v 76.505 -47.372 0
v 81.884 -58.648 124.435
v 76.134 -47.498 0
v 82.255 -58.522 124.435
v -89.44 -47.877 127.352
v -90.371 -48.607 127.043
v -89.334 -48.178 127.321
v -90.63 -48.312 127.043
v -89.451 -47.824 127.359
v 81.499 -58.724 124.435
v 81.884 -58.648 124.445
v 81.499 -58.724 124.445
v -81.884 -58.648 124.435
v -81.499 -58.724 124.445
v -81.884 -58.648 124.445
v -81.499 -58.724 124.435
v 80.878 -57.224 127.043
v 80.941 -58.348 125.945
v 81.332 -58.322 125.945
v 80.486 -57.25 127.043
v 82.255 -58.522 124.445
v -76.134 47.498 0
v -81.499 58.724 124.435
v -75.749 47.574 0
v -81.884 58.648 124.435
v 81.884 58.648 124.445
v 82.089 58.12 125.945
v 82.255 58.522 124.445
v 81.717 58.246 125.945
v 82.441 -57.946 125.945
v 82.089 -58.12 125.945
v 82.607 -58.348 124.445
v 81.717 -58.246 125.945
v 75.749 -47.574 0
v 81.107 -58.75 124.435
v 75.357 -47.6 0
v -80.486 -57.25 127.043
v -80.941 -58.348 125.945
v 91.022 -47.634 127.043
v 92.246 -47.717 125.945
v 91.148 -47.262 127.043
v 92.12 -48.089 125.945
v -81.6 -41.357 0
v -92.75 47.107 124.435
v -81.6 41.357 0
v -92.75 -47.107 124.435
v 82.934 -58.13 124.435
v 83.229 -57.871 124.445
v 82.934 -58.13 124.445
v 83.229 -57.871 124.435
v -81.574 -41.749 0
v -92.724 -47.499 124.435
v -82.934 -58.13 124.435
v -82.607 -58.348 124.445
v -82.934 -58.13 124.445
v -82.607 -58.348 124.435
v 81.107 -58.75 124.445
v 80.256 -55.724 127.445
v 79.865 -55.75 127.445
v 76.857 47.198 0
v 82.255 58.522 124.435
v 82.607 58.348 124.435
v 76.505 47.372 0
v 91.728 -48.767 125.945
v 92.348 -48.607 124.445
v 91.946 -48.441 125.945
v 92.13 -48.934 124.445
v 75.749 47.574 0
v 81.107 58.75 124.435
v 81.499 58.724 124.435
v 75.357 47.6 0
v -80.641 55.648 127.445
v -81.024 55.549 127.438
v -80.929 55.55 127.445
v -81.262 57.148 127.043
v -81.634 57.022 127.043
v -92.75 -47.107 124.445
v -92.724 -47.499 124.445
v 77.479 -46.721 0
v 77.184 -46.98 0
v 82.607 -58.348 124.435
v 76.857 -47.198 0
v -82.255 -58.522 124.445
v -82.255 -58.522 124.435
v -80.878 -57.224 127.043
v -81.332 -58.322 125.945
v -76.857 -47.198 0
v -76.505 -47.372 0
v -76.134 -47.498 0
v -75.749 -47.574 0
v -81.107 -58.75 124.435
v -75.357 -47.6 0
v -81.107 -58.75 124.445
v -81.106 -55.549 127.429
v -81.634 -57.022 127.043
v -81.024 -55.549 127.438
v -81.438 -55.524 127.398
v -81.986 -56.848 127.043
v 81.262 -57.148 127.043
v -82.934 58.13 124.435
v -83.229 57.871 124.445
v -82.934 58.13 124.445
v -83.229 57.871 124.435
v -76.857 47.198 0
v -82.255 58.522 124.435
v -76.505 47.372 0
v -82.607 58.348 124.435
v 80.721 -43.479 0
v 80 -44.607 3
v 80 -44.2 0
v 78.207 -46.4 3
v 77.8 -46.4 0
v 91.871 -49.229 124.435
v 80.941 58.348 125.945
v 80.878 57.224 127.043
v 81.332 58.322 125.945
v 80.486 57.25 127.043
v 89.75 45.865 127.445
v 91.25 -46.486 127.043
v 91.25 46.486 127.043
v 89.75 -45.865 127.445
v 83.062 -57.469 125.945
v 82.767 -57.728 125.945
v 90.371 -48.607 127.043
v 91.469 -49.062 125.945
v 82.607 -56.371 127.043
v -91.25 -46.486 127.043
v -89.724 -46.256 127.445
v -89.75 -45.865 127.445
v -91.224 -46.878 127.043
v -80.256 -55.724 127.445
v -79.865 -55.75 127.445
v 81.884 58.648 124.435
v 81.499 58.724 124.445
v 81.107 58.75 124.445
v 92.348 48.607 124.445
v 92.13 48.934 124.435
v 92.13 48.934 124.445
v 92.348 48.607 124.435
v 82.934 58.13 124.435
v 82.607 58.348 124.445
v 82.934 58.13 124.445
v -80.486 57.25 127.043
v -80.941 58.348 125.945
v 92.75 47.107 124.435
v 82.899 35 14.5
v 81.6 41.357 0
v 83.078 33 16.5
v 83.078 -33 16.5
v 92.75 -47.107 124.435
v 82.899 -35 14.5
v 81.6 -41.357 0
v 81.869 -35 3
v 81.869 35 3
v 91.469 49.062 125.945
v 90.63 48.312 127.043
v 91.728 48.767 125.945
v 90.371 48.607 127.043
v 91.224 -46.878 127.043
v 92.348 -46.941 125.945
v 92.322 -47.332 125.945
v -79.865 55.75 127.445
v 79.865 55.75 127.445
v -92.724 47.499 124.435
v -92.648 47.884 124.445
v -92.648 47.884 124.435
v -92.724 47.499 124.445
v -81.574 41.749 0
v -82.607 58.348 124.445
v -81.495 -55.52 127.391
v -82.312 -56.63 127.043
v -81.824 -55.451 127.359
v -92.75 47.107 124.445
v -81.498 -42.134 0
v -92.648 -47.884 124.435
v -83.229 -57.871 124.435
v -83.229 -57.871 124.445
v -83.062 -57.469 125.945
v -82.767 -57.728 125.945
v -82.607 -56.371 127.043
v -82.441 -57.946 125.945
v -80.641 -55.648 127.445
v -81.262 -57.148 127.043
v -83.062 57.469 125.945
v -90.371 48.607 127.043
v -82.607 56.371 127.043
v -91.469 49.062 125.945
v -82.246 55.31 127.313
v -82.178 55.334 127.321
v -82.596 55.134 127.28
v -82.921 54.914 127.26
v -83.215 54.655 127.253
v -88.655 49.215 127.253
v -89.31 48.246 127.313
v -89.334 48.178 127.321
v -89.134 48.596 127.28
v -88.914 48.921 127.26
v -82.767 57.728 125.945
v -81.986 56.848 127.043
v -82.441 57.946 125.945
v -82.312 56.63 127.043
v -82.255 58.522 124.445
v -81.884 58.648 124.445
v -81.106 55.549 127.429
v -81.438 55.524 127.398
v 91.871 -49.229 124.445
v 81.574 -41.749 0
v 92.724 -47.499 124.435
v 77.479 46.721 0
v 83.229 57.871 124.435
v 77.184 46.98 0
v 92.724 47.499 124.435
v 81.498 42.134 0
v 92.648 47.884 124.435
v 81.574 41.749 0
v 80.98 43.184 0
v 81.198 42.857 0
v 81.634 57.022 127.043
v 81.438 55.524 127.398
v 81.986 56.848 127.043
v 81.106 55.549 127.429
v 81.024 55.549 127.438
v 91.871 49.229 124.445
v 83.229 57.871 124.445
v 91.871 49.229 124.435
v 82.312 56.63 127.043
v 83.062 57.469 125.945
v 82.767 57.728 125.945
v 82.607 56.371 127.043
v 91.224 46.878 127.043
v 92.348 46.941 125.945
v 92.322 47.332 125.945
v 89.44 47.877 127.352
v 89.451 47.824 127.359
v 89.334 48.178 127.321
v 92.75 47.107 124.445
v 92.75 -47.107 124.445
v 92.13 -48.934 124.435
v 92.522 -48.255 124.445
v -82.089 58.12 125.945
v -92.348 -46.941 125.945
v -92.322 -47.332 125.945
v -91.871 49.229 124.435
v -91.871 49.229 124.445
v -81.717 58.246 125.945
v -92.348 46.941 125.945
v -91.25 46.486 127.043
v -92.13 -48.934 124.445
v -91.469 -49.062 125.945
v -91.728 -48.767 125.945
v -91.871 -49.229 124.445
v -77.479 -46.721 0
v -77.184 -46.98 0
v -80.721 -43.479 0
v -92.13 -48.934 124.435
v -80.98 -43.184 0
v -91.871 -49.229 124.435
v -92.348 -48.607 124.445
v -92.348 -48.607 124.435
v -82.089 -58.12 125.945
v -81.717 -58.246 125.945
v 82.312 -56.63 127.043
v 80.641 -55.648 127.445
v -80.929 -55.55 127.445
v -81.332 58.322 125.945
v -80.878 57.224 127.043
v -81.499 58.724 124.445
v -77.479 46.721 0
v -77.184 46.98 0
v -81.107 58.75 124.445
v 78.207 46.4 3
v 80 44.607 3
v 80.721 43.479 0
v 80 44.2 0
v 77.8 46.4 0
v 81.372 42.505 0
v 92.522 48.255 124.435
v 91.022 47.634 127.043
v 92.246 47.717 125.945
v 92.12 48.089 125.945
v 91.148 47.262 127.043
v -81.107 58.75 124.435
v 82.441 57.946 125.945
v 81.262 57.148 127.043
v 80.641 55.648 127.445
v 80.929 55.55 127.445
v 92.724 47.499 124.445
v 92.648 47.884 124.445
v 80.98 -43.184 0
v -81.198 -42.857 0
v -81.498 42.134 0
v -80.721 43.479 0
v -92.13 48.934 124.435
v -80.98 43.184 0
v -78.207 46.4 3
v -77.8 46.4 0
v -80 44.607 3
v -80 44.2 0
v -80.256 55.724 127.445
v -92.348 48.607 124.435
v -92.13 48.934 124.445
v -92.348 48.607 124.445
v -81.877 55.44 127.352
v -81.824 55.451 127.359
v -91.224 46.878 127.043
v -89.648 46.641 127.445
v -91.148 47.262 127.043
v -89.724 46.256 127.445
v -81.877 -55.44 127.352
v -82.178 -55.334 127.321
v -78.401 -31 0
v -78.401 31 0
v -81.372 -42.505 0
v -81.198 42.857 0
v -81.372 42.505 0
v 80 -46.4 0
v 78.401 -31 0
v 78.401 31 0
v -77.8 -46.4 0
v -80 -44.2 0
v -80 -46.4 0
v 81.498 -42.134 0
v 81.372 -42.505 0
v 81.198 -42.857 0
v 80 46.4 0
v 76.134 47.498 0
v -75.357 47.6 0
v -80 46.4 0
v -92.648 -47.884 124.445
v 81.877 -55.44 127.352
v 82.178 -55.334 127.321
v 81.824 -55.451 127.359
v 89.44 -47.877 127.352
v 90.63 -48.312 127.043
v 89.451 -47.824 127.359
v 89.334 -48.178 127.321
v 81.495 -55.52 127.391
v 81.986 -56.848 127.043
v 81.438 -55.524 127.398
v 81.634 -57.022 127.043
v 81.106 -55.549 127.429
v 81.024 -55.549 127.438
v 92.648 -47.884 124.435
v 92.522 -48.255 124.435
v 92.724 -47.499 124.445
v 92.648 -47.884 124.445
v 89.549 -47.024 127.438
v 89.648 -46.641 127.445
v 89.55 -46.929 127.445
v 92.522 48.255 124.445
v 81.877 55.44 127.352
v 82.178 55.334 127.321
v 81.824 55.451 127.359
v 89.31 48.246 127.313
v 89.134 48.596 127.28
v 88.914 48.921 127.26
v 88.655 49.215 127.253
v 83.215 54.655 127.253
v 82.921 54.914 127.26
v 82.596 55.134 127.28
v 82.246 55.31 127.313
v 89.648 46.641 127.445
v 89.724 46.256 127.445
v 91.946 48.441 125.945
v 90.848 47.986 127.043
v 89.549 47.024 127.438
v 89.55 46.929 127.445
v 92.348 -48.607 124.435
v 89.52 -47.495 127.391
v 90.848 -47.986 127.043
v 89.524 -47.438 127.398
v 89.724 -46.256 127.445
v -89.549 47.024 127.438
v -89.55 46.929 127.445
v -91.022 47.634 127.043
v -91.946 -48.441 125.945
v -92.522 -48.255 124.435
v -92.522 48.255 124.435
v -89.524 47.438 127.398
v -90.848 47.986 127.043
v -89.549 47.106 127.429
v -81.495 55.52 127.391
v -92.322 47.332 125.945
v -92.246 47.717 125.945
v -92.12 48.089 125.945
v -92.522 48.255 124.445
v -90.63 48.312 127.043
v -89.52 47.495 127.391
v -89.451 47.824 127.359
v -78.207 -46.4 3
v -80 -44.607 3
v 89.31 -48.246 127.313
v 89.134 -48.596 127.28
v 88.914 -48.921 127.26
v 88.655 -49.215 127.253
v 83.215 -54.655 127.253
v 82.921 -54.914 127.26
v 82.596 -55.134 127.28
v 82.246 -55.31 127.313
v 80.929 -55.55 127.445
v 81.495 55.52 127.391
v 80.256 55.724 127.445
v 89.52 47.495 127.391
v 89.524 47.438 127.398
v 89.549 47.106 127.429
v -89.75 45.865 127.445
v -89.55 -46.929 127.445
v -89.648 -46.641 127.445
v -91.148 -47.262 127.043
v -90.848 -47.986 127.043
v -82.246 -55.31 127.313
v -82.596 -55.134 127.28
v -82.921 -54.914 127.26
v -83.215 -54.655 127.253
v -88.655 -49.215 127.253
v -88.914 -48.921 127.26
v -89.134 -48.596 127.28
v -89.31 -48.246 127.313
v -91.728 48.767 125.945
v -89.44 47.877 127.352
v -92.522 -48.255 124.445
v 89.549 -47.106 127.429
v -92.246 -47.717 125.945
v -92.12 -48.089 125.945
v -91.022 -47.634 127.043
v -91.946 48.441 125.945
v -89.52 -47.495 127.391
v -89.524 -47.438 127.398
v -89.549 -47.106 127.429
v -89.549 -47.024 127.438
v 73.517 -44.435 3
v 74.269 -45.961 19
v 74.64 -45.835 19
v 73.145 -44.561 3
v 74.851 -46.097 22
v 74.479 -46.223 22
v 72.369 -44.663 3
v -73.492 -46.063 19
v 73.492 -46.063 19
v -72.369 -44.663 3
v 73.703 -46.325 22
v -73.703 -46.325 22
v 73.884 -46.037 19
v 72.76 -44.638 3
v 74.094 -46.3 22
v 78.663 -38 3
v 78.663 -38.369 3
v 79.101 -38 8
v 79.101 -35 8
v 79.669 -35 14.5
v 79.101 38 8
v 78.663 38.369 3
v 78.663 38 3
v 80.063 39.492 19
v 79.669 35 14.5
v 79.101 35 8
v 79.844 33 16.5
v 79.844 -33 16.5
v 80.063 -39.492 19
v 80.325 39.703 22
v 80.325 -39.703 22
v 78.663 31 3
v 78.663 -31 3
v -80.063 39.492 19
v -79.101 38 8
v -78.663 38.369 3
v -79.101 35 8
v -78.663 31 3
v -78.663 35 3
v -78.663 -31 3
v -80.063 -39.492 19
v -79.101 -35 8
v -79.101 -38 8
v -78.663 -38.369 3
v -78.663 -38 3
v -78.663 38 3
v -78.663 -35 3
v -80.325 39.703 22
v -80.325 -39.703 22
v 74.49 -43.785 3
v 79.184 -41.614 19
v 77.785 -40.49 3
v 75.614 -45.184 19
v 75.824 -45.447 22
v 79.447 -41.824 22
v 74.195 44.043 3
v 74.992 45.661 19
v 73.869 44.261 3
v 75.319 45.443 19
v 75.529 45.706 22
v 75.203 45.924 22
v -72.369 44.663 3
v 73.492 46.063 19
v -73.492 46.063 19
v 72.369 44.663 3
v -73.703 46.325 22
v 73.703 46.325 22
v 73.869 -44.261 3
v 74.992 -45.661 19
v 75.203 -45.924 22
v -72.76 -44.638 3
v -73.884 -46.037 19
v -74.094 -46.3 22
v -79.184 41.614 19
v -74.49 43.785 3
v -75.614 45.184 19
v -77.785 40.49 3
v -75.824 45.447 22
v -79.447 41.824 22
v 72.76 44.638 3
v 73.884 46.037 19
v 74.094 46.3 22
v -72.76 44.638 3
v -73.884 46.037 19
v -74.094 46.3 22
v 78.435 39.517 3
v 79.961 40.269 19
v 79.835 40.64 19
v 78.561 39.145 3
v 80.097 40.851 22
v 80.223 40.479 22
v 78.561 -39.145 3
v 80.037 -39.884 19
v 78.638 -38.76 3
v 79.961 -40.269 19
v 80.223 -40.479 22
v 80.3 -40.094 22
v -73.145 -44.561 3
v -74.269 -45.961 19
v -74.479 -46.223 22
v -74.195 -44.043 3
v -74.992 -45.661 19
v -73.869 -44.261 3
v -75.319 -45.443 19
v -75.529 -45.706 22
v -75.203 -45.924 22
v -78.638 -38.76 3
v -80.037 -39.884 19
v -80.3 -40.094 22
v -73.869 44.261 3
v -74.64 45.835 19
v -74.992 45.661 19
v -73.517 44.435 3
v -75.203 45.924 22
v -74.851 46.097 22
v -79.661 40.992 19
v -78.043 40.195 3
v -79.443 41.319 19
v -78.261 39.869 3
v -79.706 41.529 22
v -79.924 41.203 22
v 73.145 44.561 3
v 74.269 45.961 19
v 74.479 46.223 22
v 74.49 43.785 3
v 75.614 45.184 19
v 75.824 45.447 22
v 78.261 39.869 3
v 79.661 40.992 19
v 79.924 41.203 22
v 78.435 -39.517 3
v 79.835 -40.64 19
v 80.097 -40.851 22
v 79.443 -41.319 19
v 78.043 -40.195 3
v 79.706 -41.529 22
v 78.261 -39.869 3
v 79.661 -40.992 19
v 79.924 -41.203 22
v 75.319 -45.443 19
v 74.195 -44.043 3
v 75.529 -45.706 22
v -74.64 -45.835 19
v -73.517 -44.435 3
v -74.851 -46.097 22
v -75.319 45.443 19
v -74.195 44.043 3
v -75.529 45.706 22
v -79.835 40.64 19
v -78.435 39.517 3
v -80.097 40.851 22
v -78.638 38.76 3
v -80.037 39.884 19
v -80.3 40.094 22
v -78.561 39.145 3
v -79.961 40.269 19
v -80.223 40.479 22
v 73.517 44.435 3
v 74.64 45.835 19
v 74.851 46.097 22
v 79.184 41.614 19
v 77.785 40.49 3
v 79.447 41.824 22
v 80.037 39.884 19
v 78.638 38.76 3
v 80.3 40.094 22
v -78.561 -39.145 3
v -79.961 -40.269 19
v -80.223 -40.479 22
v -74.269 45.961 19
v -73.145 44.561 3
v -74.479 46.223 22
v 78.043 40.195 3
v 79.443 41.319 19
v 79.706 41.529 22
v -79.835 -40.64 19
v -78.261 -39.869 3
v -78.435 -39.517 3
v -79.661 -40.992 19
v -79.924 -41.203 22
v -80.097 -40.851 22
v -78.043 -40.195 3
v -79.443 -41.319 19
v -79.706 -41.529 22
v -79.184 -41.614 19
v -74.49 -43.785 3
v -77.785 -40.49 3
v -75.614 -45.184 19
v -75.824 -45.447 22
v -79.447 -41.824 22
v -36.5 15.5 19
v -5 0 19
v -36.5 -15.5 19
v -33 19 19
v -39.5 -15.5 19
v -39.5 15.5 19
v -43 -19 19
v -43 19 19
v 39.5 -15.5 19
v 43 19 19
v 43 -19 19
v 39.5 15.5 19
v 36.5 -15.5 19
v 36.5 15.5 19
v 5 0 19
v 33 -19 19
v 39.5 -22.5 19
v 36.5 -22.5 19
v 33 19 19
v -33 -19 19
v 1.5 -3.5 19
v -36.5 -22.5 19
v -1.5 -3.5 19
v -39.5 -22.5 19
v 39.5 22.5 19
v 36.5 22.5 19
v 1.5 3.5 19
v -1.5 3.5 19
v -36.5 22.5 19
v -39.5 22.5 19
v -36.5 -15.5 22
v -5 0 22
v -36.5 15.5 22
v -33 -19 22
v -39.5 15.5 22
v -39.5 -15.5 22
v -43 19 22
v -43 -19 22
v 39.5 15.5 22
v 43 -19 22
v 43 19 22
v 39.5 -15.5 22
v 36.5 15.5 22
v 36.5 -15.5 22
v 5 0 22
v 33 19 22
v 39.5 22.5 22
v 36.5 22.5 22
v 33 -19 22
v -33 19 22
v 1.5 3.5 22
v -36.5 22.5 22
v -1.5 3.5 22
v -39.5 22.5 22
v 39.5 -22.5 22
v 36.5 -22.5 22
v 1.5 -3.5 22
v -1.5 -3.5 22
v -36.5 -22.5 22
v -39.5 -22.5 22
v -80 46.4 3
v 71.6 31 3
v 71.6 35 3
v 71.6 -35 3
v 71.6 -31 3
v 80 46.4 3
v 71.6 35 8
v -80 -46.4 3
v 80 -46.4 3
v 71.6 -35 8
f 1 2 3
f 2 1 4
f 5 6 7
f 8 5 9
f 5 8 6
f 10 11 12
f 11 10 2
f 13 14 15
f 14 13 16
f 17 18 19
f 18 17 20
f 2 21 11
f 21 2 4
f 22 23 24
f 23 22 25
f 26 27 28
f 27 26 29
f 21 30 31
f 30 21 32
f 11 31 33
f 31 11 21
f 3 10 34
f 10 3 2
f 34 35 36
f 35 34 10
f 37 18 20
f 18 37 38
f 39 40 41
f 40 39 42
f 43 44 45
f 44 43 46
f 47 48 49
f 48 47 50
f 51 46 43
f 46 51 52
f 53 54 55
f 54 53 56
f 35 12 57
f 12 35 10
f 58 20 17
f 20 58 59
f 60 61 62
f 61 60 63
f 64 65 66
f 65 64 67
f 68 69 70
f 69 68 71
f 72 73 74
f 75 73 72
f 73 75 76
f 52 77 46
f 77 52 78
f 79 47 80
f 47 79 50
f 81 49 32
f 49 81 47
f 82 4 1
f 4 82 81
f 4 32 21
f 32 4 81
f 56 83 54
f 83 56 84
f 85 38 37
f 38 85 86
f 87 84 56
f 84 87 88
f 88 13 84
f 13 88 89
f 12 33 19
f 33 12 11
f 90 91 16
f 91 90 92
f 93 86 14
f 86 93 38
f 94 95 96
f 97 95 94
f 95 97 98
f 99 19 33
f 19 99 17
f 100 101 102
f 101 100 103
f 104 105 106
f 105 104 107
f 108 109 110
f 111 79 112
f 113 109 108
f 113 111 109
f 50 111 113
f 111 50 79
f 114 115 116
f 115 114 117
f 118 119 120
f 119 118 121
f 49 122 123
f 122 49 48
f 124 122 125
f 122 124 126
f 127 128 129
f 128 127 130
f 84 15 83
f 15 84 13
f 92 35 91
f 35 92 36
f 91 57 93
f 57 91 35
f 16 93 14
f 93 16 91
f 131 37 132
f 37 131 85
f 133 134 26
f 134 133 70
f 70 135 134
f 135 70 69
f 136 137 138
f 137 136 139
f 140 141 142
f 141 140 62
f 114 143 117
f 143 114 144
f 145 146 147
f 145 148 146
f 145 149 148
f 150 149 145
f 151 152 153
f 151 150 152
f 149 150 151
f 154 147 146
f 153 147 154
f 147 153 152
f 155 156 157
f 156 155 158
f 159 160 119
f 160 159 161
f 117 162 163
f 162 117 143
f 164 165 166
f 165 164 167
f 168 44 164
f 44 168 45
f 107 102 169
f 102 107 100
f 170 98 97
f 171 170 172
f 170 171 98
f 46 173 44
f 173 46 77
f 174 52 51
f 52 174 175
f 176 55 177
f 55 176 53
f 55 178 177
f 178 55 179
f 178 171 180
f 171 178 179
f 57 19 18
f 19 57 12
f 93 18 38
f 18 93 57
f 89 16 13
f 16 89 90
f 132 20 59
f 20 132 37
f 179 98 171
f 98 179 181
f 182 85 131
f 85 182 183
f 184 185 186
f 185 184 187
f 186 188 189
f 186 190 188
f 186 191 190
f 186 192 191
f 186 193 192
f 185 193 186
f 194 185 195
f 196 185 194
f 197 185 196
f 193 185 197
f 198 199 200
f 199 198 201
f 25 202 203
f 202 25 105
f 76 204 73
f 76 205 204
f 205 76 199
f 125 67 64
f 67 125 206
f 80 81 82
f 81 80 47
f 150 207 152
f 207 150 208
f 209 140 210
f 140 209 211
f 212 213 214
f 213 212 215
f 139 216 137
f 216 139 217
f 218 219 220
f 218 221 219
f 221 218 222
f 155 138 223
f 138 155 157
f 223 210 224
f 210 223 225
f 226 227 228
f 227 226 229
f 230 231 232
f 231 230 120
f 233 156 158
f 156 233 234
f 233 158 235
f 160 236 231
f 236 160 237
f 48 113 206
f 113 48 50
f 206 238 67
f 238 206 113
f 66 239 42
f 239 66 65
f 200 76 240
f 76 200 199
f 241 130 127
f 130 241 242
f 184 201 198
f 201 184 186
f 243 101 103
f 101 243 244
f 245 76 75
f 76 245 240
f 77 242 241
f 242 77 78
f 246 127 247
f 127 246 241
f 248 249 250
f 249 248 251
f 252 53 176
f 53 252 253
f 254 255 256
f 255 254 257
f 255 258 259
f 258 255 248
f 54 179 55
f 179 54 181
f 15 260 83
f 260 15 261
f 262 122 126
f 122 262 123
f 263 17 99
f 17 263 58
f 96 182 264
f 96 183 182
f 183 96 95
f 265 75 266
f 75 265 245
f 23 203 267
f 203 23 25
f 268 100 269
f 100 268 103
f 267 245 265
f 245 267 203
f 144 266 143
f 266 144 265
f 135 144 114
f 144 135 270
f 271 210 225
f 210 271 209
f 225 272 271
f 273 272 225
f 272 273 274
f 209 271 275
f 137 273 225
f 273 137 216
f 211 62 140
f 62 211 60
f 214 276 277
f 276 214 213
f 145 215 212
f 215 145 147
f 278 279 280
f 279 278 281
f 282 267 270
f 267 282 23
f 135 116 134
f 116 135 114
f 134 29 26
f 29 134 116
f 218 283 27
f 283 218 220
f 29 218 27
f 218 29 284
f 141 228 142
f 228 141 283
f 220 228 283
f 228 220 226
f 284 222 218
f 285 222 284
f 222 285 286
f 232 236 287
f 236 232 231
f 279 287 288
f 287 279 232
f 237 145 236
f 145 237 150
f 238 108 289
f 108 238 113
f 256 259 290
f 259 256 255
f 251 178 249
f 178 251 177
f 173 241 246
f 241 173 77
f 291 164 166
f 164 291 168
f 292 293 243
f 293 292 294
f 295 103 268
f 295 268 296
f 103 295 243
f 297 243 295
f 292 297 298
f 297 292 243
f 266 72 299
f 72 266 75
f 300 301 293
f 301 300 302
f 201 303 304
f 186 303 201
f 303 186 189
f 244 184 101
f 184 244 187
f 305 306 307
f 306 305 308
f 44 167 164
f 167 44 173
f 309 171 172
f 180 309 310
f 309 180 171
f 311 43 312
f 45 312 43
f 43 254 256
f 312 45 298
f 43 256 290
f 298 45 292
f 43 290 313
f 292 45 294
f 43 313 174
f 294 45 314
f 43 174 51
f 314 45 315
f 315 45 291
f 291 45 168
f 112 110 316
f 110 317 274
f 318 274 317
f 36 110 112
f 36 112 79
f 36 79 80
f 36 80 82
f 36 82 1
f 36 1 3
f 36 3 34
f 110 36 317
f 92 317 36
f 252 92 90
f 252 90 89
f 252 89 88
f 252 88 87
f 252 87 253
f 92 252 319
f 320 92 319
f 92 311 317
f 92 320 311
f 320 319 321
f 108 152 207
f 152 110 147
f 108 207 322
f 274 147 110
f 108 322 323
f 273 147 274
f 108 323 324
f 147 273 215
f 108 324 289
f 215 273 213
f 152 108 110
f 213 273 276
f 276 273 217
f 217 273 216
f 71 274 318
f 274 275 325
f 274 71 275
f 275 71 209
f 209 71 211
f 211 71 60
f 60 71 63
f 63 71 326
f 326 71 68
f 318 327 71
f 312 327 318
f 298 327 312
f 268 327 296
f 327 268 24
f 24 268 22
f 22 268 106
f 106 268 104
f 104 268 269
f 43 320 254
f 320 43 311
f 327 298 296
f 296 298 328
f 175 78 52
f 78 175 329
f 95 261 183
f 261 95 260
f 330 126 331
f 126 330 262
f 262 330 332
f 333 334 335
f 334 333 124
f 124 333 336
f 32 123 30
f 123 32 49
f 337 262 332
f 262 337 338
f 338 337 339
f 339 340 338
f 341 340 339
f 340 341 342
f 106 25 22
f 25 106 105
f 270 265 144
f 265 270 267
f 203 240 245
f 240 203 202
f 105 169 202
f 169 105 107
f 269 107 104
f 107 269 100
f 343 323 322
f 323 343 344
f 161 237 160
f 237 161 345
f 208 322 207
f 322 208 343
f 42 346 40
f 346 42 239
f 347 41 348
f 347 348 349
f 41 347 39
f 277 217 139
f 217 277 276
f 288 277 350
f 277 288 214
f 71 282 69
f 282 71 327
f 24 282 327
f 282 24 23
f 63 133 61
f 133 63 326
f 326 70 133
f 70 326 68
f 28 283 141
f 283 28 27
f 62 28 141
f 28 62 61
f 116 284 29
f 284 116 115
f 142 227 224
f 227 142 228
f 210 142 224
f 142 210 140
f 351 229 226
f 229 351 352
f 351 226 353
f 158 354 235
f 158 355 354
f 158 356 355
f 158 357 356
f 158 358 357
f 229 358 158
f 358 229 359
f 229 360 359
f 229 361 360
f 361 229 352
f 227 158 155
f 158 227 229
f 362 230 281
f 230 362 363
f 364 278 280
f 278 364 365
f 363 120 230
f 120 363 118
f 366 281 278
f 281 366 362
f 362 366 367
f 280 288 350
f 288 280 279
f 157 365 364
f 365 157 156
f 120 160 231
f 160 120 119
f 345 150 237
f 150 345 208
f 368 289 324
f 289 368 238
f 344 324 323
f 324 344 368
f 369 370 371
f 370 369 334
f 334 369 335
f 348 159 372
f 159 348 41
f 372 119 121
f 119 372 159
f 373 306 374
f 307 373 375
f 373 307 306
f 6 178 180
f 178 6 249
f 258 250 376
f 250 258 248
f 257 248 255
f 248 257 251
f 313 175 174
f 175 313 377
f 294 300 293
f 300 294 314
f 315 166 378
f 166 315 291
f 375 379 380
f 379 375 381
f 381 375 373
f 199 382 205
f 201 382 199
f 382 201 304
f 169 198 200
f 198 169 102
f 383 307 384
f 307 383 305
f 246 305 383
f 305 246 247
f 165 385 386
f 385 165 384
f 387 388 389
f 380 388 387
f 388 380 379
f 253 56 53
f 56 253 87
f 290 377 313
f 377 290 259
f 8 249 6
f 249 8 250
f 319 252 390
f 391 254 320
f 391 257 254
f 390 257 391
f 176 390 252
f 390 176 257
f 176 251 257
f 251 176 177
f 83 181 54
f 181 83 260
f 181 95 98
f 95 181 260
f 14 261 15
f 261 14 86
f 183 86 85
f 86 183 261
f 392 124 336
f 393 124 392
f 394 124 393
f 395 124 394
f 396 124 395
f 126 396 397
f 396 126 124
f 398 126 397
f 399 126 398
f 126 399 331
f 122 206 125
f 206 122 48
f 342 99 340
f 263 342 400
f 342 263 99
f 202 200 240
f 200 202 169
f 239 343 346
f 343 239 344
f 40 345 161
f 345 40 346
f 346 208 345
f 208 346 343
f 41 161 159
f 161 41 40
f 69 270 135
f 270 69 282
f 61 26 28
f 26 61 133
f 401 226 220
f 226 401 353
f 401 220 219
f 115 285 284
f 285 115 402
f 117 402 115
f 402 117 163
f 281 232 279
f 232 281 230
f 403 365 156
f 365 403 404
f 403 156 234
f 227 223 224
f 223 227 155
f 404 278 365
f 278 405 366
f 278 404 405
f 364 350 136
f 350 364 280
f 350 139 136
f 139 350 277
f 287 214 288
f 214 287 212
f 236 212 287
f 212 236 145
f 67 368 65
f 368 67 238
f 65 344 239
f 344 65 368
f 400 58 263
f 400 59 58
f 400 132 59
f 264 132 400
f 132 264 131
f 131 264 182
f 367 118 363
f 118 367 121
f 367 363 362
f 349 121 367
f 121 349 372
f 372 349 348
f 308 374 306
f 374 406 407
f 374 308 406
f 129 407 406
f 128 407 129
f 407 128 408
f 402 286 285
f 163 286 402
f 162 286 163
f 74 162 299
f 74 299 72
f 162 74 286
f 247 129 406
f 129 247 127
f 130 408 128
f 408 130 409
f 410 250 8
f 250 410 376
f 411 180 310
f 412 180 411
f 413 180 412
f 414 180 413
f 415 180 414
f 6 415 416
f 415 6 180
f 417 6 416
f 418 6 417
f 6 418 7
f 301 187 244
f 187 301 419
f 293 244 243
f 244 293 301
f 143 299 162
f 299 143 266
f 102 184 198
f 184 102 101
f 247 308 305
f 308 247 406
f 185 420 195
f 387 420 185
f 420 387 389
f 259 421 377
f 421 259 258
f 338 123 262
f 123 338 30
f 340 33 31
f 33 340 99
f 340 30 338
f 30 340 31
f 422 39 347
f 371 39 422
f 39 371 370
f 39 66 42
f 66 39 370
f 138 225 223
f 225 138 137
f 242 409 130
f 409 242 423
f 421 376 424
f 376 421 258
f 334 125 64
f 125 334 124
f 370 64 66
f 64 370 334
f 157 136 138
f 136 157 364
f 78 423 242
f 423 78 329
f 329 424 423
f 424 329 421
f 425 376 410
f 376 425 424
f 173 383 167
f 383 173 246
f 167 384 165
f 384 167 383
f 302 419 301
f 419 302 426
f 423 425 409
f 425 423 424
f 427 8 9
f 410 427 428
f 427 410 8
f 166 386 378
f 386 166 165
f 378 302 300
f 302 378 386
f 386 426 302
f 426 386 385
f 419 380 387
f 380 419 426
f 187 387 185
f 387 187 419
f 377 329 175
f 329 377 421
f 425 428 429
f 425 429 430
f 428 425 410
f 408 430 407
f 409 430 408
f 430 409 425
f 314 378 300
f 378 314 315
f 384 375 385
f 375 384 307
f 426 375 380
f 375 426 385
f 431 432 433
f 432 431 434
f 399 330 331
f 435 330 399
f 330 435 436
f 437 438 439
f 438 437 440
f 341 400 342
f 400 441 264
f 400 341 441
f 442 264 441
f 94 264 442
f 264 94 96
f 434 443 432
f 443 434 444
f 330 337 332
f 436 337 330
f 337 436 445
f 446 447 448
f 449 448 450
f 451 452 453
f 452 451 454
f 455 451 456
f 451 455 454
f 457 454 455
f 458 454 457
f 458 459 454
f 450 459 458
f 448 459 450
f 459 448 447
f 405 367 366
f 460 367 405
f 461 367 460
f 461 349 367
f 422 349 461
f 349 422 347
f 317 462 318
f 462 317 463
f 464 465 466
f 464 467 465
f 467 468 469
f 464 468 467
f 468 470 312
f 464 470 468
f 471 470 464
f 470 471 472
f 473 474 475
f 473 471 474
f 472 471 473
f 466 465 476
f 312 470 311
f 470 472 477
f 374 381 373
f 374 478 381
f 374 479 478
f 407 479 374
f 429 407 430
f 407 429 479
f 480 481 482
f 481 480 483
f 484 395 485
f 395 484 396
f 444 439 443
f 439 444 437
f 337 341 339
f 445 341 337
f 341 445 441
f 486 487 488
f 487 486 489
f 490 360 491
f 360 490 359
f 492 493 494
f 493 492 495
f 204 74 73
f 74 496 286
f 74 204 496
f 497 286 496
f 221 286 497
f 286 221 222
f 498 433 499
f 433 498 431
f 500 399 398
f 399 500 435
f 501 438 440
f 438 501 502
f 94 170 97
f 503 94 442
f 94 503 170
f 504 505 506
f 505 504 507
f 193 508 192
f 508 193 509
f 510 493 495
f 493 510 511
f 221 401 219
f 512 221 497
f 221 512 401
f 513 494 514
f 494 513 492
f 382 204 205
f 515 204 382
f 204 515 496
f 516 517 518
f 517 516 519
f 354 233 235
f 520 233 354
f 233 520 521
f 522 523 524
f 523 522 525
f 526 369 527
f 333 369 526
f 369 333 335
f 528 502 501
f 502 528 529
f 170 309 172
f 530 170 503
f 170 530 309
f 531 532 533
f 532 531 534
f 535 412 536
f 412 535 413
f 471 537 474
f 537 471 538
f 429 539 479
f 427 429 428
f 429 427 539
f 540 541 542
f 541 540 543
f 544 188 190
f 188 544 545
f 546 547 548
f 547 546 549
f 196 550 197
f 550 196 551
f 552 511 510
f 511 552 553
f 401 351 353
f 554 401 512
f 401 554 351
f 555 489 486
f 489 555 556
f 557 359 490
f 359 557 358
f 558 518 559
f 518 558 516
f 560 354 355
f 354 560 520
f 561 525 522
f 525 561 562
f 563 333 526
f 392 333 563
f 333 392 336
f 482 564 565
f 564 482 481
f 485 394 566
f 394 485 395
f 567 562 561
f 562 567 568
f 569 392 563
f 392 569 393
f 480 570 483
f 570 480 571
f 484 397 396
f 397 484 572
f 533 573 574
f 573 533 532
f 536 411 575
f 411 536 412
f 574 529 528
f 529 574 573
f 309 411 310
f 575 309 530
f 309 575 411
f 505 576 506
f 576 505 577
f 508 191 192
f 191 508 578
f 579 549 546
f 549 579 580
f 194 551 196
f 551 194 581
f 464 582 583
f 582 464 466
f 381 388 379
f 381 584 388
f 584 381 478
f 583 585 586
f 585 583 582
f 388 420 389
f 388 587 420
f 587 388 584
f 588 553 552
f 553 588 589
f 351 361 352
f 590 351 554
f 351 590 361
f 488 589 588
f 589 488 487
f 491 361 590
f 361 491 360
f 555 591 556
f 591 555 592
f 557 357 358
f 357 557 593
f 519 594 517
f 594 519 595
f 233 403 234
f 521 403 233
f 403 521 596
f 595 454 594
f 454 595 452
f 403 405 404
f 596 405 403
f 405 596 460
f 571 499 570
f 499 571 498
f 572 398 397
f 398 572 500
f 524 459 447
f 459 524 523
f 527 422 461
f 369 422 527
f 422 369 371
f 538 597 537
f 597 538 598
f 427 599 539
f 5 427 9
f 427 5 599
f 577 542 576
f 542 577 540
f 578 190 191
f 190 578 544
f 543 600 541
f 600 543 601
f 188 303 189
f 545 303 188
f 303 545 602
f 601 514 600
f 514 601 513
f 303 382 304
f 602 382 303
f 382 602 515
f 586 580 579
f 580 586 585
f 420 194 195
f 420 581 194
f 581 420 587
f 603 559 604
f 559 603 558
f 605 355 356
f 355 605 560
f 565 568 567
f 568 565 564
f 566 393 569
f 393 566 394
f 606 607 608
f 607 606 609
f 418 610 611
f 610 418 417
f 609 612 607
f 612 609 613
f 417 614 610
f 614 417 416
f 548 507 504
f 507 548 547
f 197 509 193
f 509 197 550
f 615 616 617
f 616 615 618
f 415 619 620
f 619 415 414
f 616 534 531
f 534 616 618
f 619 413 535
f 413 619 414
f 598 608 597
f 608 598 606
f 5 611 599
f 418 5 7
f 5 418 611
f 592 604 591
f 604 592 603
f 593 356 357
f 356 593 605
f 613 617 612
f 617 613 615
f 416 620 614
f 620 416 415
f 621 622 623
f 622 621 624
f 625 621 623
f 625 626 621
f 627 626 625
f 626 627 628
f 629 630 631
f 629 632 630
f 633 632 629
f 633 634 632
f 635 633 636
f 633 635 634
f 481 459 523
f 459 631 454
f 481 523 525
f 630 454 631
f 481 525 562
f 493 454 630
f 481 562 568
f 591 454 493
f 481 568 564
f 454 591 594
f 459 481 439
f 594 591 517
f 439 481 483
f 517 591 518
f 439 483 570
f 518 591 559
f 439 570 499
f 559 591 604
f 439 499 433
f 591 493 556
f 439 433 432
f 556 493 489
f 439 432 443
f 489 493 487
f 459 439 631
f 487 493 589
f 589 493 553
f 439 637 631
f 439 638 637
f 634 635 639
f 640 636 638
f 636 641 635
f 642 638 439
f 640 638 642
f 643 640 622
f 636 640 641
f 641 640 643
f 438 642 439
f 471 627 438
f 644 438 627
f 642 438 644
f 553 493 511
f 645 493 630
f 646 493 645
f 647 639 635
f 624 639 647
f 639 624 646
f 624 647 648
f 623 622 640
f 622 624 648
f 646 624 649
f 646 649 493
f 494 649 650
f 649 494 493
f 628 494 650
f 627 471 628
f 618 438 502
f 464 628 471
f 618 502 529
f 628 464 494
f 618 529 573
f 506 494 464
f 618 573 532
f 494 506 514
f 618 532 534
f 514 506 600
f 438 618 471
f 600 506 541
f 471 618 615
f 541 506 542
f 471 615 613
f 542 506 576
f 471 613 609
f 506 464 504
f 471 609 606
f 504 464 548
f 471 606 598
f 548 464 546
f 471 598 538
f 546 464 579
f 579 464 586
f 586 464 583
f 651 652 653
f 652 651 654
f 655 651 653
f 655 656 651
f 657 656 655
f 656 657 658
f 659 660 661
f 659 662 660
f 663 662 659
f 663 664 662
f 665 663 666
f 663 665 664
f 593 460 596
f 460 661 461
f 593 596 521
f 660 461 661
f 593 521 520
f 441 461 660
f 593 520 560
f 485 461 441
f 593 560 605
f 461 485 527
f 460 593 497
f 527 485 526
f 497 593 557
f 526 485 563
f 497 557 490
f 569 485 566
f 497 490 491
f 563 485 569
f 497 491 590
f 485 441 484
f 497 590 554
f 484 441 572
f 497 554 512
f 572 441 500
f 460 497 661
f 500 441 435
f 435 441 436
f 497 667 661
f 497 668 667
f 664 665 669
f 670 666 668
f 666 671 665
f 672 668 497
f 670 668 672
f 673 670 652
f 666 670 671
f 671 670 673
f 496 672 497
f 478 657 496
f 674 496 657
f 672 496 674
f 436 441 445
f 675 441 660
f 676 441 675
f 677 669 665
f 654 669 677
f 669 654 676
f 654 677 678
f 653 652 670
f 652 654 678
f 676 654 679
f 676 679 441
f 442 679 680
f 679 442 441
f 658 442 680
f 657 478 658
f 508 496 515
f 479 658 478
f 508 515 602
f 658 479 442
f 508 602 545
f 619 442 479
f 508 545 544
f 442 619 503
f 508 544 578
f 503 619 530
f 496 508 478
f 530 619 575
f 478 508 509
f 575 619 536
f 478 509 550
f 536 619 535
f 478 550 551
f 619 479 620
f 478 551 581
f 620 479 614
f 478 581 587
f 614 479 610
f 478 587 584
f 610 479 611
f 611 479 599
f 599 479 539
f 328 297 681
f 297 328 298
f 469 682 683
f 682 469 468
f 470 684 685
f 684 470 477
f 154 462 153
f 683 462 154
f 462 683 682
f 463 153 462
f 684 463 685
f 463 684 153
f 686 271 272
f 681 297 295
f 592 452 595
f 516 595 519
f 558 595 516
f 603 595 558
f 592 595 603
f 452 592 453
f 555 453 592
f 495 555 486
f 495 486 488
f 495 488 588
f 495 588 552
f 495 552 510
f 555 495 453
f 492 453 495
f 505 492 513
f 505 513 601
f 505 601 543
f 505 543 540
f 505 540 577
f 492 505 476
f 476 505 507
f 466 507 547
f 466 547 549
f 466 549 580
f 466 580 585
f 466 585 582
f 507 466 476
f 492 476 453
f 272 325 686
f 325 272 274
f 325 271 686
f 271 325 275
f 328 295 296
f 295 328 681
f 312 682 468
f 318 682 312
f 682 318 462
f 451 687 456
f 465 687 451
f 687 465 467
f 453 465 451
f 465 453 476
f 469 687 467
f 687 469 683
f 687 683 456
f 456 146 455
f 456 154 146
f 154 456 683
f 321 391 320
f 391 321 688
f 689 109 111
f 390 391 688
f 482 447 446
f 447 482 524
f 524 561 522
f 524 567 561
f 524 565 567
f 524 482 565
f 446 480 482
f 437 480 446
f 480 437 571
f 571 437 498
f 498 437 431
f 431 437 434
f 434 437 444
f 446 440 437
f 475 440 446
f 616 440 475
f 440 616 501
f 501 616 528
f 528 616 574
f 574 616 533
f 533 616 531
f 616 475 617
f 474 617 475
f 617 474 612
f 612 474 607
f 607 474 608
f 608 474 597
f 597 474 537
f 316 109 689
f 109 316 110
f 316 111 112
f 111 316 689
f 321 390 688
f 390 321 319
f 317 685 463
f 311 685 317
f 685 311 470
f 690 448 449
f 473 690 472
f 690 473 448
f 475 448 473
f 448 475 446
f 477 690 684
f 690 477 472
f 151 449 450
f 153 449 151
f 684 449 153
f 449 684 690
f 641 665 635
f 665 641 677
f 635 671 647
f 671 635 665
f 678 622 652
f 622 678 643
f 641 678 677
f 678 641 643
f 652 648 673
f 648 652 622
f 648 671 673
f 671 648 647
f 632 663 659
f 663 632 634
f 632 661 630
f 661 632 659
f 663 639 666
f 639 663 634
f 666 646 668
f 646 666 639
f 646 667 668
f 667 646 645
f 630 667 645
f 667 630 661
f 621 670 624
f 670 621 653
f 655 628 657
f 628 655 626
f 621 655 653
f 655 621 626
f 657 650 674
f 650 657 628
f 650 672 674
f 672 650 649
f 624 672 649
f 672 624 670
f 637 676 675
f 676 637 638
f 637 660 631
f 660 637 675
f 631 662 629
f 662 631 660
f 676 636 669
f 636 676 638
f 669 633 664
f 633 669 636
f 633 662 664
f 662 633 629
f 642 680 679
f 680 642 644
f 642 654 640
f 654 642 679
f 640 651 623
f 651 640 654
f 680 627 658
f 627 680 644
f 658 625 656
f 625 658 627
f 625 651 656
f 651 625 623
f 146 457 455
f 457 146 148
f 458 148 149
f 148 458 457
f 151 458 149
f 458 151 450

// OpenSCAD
// Pot only — print lying on the back (+X) face. See marsh_repot_015.scad.
include <marsh_repot_015.scad>
part = "pot";
